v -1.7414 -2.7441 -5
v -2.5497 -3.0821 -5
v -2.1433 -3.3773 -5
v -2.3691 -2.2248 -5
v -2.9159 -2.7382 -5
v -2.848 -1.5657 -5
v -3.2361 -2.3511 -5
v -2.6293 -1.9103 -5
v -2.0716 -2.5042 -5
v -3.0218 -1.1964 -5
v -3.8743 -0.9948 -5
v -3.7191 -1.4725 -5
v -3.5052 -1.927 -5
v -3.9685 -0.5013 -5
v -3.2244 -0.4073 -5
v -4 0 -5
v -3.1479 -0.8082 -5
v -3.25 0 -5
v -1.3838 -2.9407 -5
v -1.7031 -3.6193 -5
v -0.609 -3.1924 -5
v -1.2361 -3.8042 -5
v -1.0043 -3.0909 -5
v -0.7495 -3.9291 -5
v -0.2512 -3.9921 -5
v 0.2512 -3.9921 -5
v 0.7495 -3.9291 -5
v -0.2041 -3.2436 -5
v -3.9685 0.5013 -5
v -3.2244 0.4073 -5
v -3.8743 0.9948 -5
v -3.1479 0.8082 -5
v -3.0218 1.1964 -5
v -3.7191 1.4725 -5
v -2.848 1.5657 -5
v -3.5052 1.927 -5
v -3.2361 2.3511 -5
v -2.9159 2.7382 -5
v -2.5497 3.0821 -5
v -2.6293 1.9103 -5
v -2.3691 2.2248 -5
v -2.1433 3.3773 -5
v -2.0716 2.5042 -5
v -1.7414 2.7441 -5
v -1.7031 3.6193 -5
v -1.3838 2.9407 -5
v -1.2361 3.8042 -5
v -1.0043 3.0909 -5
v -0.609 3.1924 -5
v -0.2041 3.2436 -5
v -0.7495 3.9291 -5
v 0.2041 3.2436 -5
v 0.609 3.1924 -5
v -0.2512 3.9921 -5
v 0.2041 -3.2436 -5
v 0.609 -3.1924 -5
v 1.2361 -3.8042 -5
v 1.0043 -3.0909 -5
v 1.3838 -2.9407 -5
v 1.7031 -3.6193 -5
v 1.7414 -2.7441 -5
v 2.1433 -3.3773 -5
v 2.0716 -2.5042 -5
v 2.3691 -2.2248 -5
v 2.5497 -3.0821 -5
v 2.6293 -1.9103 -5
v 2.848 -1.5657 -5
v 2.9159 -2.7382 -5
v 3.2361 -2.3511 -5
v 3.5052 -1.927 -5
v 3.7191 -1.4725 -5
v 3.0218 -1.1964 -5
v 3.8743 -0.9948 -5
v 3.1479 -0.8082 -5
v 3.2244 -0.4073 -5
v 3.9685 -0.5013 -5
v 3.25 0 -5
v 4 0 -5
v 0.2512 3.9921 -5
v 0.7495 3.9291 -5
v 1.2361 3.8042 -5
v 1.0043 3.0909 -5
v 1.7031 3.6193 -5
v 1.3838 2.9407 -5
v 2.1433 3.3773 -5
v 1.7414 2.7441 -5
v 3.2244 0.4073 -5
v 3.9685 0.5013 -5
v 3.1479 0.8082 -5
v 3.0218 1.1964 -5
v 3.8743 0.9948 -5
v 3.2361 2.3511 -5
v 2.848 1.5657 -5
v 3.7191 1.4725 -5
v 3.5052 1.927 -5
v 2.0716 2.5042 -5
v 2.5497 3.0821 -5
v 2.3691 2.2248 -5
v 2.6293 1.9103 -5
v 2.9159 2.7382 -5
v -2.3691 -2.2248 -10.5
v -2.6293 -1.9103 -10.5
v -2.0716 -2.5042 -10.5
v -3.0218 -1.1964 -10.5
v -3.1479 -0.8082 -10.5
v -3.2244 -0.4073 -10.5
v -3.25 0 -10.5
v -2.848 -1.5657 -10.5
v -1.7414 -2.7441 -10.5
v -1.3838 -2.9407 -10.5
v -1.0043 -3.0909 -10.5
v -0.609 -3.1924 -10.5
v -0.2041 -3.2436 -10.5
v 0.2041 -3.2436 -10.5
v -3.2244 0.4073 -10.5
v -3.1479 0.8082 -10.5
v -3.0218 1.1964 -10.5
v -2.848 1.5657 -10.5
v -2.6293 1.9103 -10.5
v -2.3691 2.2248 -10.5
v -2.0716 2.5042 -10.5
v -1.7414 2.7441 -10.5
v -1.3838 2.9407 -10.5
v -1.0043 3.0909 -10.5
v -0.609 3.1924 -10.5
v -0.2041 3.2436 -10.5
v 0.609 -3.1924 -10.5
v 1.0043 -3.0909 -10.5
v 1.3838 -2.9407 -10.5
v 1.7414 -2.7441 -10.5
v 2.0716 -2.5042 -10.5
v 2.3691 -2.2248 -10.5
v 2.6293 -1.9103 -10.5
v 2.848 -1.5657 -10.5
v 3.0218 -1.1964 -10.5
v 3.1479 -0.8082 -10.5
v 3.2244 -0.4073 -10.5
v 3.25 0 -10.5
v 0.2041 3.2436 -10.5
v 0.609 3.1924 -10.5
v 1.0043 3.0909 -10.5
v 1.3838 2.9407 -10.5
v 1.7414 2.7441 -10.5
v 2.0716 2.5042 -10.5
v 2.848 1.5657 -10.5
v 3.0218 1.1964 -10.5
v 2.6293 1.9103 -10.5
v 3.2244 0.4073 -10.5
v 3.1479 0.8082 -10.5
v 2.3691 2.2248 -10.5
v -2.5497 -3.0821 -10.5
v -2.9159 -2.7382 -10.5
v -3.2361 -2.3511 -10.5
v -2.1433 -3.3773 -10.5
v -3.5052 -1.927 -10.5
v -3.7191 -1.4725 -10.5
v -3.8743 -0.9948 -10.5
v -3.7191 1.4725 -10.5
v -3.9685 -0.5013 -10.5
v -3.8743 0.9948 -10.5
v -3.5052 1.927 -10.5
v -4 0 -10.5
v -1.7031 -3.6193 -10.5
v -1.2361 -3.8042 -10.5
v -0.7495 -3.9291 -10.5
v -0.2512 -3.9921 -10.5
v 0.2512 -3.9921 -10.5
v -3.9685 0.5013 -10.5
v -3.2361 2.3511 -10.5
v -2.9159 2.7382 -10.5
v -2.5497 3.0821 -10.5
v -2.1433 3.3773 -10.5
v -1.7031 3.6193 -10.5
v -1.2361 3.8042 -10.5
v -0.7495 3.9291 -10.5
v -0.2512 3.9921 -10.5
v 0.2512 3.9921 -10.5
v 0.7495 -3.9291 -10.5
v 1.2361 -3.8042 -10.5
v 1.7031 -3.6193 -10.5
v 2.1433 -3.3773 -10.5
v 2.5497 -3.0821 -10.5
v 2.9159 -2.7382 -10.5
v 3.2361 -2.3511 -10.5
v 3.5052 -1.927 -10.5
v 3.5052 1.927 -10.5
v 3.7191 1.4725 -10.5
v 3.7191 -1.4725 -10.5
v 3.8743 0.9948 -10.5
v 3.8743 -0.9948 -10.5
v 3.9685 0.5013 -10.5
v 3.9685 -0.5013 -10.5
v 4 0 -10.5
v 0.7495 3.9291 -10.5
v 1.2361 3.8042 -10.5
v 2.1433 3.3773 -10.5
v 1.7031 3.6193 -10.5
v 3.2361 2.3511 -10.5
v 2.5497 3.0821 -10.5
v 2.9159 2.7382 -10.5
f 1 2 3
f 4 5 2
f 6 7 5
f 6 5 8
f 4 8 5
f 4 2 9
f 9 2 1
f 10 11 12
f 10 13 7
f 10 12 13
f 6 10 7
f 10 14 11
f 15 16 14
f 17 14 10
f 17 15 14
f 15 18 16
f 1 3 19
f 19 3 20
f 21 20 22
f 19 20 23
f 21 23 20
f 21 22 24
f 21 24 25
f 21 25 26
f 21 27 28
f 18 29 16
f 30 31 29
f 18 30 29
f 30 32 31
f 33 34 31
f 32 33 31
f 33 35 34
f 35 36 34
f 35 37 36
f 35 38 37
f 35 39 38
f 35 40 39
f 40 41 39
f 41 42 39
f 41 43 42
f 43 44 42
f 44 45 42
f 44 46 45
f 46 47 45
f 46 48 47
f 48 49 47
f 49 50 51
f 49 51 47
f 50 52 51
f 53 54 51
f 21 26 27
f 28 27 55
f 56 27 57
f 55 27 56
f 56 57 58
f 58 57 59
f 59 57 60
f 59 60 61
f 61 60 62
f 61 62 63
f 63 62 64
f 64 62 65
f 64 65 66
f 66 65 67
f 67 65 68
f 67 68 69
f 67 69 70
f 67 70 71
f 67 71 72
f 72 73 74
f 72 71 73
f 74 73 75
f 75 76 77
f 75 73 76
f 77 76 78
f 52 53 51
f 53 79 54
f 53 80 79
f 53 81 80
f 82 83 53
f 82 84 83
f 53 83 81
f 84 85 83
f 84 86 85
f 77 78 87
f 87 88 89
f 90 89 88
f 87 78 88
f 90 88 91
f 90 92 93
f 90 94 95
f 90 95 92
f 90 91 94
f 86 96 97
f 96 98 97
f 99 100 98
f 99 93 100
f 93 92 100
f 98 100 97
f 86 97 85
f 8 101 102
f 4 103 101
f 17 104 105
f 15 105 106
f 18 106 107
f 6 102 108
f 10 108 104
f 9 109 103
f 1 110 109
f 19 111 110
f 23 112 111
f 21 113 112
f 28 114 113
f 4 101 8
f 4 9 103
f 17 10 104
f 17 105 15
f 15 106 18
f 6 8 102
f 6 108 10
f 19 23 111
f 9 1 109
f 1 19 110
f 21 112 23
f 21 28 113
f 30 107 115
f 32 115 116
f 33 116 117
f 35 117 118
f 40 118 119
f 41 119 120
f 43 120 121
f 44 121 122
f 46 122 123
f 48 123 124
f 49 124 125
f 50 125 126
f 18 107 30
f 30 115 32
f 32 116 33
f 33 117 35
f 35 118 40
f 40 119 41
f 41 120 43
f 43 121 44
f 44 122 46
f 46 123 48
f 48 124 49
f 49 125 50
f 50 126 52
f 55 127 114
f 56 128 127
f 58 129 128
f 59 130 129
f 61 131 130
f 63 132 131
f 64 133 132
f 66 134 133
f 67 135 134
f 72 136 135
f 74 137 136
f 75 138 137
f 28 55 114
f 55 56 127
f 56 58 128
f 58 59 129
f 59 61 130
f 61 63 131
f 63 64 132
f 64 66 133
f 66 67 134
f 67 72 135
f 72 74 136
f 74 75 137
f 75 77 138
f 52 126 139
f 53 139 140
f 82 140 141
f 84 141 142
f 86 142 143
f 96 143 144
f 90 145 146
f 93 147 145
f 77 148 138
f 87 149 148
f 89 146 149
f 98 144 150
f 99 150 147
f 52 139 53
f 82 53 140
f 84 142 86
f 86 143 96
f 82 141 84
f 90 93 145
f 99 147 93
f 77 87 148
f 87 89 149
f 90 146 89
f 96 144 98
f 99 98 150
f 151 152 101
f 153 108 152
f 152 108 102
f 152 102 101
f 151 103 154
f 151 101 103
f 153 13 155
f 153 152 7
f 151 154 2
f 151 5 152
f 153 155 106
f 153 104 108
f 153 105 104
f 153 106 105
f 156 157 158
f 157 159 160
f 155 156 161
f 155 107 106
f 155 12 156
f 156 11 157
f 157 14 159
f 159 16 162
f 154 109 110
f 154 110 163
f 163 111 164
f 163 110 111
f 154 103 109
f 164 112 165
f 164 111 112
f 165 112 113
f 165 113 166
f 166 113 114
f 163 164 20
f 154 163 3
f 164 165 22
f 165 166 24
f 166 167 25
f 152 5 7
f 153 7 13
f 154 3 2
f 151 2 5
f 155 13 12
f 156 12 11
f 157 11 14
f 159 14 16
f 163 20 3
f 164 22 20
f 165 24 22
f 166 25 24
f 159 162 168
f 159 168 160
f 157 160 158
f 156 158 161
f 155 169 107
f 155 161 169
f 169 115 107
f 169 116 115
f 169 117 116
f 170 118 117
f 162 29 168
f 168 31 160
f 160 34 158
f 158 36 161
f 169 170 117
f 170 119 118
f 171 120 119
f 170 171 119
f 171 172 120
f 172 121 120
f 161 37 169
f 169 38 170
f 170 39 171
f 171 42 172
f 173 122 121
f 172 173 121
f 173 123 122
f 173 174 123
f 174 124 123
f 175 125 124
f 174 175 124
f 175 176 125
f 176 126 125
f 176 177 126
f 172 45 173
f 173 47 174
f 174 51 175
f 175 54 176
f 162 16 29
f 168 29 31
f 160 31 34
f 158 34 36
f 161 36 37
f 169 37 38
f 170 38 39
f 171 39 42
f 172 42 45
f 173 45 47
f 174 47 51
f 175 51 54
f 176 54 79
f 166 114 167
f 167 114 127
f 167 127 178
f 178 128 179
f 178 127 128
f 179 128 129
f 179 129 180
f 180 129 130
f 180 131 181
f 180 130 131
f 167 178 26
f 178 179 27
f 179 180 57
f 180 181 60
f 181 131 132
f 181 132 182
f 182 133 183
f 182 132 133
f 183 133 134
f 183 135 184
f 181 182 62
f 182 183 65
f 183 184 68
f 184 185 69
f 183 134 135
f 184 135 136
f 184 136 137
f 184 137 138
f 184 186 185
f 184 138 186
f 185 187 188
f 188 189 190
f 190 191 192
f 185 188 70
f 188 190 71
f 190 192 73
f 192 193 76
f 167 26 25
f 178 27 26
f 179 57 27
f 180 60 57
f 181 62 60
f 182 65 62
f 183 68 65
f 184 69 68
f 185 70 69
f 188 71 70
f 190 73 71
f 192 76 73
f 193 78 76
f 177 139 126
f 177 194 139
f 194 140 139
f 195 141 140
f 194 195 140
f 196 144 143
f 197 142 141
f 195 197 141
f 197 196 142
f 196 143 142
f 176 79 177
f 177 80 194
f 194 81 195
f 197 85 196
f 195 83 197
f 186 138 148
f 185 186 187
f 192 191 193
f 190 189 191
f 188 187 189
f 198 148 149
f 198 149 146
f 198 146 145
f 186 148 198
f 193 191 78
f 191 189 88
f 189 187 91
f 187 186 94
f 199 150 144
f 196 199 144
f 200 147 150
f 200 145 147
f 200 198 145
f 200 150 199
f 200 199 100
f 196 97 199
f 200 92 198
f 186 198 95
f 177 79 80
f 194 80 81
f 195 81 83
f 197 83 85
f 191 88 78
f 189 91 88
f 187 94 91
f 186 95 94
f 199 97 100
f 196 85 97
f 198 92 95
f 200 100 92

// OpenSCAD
$fn = 50;

difference() {
	union() {
		translate(v = [0, 0, -10.5]) {
			cylinder(h = 13.5, r = 4.0);
		}
	}
	union() {
		translate(v = [0, 0, 0]) {
			rotate(a = [0, 0, 0]) {
				difference() {
					union() {
						translate(v = [0, 0, -5]) {
							linear_extrude(height = 5) {
								polygon(points = [[5.914249999999999, 0.0], [2.957125, 5.1218907443321156], [-2.9571249999999982, 5.1218907443321156], [-5.914249999999999, 7.242867331857232e-16], [-2.9571250000000022, -5.121890744332115], [2.9571249999999956, -5.121890744332118]]);
							}
						}
					}
					union();
				}
			}
		}
		#cylinder(h = 3, r = 6.25);
		#translate(v = [0, 0, -100.0]) {
			cylinder(h = 200, r = 3.25);
		}
	}
}
